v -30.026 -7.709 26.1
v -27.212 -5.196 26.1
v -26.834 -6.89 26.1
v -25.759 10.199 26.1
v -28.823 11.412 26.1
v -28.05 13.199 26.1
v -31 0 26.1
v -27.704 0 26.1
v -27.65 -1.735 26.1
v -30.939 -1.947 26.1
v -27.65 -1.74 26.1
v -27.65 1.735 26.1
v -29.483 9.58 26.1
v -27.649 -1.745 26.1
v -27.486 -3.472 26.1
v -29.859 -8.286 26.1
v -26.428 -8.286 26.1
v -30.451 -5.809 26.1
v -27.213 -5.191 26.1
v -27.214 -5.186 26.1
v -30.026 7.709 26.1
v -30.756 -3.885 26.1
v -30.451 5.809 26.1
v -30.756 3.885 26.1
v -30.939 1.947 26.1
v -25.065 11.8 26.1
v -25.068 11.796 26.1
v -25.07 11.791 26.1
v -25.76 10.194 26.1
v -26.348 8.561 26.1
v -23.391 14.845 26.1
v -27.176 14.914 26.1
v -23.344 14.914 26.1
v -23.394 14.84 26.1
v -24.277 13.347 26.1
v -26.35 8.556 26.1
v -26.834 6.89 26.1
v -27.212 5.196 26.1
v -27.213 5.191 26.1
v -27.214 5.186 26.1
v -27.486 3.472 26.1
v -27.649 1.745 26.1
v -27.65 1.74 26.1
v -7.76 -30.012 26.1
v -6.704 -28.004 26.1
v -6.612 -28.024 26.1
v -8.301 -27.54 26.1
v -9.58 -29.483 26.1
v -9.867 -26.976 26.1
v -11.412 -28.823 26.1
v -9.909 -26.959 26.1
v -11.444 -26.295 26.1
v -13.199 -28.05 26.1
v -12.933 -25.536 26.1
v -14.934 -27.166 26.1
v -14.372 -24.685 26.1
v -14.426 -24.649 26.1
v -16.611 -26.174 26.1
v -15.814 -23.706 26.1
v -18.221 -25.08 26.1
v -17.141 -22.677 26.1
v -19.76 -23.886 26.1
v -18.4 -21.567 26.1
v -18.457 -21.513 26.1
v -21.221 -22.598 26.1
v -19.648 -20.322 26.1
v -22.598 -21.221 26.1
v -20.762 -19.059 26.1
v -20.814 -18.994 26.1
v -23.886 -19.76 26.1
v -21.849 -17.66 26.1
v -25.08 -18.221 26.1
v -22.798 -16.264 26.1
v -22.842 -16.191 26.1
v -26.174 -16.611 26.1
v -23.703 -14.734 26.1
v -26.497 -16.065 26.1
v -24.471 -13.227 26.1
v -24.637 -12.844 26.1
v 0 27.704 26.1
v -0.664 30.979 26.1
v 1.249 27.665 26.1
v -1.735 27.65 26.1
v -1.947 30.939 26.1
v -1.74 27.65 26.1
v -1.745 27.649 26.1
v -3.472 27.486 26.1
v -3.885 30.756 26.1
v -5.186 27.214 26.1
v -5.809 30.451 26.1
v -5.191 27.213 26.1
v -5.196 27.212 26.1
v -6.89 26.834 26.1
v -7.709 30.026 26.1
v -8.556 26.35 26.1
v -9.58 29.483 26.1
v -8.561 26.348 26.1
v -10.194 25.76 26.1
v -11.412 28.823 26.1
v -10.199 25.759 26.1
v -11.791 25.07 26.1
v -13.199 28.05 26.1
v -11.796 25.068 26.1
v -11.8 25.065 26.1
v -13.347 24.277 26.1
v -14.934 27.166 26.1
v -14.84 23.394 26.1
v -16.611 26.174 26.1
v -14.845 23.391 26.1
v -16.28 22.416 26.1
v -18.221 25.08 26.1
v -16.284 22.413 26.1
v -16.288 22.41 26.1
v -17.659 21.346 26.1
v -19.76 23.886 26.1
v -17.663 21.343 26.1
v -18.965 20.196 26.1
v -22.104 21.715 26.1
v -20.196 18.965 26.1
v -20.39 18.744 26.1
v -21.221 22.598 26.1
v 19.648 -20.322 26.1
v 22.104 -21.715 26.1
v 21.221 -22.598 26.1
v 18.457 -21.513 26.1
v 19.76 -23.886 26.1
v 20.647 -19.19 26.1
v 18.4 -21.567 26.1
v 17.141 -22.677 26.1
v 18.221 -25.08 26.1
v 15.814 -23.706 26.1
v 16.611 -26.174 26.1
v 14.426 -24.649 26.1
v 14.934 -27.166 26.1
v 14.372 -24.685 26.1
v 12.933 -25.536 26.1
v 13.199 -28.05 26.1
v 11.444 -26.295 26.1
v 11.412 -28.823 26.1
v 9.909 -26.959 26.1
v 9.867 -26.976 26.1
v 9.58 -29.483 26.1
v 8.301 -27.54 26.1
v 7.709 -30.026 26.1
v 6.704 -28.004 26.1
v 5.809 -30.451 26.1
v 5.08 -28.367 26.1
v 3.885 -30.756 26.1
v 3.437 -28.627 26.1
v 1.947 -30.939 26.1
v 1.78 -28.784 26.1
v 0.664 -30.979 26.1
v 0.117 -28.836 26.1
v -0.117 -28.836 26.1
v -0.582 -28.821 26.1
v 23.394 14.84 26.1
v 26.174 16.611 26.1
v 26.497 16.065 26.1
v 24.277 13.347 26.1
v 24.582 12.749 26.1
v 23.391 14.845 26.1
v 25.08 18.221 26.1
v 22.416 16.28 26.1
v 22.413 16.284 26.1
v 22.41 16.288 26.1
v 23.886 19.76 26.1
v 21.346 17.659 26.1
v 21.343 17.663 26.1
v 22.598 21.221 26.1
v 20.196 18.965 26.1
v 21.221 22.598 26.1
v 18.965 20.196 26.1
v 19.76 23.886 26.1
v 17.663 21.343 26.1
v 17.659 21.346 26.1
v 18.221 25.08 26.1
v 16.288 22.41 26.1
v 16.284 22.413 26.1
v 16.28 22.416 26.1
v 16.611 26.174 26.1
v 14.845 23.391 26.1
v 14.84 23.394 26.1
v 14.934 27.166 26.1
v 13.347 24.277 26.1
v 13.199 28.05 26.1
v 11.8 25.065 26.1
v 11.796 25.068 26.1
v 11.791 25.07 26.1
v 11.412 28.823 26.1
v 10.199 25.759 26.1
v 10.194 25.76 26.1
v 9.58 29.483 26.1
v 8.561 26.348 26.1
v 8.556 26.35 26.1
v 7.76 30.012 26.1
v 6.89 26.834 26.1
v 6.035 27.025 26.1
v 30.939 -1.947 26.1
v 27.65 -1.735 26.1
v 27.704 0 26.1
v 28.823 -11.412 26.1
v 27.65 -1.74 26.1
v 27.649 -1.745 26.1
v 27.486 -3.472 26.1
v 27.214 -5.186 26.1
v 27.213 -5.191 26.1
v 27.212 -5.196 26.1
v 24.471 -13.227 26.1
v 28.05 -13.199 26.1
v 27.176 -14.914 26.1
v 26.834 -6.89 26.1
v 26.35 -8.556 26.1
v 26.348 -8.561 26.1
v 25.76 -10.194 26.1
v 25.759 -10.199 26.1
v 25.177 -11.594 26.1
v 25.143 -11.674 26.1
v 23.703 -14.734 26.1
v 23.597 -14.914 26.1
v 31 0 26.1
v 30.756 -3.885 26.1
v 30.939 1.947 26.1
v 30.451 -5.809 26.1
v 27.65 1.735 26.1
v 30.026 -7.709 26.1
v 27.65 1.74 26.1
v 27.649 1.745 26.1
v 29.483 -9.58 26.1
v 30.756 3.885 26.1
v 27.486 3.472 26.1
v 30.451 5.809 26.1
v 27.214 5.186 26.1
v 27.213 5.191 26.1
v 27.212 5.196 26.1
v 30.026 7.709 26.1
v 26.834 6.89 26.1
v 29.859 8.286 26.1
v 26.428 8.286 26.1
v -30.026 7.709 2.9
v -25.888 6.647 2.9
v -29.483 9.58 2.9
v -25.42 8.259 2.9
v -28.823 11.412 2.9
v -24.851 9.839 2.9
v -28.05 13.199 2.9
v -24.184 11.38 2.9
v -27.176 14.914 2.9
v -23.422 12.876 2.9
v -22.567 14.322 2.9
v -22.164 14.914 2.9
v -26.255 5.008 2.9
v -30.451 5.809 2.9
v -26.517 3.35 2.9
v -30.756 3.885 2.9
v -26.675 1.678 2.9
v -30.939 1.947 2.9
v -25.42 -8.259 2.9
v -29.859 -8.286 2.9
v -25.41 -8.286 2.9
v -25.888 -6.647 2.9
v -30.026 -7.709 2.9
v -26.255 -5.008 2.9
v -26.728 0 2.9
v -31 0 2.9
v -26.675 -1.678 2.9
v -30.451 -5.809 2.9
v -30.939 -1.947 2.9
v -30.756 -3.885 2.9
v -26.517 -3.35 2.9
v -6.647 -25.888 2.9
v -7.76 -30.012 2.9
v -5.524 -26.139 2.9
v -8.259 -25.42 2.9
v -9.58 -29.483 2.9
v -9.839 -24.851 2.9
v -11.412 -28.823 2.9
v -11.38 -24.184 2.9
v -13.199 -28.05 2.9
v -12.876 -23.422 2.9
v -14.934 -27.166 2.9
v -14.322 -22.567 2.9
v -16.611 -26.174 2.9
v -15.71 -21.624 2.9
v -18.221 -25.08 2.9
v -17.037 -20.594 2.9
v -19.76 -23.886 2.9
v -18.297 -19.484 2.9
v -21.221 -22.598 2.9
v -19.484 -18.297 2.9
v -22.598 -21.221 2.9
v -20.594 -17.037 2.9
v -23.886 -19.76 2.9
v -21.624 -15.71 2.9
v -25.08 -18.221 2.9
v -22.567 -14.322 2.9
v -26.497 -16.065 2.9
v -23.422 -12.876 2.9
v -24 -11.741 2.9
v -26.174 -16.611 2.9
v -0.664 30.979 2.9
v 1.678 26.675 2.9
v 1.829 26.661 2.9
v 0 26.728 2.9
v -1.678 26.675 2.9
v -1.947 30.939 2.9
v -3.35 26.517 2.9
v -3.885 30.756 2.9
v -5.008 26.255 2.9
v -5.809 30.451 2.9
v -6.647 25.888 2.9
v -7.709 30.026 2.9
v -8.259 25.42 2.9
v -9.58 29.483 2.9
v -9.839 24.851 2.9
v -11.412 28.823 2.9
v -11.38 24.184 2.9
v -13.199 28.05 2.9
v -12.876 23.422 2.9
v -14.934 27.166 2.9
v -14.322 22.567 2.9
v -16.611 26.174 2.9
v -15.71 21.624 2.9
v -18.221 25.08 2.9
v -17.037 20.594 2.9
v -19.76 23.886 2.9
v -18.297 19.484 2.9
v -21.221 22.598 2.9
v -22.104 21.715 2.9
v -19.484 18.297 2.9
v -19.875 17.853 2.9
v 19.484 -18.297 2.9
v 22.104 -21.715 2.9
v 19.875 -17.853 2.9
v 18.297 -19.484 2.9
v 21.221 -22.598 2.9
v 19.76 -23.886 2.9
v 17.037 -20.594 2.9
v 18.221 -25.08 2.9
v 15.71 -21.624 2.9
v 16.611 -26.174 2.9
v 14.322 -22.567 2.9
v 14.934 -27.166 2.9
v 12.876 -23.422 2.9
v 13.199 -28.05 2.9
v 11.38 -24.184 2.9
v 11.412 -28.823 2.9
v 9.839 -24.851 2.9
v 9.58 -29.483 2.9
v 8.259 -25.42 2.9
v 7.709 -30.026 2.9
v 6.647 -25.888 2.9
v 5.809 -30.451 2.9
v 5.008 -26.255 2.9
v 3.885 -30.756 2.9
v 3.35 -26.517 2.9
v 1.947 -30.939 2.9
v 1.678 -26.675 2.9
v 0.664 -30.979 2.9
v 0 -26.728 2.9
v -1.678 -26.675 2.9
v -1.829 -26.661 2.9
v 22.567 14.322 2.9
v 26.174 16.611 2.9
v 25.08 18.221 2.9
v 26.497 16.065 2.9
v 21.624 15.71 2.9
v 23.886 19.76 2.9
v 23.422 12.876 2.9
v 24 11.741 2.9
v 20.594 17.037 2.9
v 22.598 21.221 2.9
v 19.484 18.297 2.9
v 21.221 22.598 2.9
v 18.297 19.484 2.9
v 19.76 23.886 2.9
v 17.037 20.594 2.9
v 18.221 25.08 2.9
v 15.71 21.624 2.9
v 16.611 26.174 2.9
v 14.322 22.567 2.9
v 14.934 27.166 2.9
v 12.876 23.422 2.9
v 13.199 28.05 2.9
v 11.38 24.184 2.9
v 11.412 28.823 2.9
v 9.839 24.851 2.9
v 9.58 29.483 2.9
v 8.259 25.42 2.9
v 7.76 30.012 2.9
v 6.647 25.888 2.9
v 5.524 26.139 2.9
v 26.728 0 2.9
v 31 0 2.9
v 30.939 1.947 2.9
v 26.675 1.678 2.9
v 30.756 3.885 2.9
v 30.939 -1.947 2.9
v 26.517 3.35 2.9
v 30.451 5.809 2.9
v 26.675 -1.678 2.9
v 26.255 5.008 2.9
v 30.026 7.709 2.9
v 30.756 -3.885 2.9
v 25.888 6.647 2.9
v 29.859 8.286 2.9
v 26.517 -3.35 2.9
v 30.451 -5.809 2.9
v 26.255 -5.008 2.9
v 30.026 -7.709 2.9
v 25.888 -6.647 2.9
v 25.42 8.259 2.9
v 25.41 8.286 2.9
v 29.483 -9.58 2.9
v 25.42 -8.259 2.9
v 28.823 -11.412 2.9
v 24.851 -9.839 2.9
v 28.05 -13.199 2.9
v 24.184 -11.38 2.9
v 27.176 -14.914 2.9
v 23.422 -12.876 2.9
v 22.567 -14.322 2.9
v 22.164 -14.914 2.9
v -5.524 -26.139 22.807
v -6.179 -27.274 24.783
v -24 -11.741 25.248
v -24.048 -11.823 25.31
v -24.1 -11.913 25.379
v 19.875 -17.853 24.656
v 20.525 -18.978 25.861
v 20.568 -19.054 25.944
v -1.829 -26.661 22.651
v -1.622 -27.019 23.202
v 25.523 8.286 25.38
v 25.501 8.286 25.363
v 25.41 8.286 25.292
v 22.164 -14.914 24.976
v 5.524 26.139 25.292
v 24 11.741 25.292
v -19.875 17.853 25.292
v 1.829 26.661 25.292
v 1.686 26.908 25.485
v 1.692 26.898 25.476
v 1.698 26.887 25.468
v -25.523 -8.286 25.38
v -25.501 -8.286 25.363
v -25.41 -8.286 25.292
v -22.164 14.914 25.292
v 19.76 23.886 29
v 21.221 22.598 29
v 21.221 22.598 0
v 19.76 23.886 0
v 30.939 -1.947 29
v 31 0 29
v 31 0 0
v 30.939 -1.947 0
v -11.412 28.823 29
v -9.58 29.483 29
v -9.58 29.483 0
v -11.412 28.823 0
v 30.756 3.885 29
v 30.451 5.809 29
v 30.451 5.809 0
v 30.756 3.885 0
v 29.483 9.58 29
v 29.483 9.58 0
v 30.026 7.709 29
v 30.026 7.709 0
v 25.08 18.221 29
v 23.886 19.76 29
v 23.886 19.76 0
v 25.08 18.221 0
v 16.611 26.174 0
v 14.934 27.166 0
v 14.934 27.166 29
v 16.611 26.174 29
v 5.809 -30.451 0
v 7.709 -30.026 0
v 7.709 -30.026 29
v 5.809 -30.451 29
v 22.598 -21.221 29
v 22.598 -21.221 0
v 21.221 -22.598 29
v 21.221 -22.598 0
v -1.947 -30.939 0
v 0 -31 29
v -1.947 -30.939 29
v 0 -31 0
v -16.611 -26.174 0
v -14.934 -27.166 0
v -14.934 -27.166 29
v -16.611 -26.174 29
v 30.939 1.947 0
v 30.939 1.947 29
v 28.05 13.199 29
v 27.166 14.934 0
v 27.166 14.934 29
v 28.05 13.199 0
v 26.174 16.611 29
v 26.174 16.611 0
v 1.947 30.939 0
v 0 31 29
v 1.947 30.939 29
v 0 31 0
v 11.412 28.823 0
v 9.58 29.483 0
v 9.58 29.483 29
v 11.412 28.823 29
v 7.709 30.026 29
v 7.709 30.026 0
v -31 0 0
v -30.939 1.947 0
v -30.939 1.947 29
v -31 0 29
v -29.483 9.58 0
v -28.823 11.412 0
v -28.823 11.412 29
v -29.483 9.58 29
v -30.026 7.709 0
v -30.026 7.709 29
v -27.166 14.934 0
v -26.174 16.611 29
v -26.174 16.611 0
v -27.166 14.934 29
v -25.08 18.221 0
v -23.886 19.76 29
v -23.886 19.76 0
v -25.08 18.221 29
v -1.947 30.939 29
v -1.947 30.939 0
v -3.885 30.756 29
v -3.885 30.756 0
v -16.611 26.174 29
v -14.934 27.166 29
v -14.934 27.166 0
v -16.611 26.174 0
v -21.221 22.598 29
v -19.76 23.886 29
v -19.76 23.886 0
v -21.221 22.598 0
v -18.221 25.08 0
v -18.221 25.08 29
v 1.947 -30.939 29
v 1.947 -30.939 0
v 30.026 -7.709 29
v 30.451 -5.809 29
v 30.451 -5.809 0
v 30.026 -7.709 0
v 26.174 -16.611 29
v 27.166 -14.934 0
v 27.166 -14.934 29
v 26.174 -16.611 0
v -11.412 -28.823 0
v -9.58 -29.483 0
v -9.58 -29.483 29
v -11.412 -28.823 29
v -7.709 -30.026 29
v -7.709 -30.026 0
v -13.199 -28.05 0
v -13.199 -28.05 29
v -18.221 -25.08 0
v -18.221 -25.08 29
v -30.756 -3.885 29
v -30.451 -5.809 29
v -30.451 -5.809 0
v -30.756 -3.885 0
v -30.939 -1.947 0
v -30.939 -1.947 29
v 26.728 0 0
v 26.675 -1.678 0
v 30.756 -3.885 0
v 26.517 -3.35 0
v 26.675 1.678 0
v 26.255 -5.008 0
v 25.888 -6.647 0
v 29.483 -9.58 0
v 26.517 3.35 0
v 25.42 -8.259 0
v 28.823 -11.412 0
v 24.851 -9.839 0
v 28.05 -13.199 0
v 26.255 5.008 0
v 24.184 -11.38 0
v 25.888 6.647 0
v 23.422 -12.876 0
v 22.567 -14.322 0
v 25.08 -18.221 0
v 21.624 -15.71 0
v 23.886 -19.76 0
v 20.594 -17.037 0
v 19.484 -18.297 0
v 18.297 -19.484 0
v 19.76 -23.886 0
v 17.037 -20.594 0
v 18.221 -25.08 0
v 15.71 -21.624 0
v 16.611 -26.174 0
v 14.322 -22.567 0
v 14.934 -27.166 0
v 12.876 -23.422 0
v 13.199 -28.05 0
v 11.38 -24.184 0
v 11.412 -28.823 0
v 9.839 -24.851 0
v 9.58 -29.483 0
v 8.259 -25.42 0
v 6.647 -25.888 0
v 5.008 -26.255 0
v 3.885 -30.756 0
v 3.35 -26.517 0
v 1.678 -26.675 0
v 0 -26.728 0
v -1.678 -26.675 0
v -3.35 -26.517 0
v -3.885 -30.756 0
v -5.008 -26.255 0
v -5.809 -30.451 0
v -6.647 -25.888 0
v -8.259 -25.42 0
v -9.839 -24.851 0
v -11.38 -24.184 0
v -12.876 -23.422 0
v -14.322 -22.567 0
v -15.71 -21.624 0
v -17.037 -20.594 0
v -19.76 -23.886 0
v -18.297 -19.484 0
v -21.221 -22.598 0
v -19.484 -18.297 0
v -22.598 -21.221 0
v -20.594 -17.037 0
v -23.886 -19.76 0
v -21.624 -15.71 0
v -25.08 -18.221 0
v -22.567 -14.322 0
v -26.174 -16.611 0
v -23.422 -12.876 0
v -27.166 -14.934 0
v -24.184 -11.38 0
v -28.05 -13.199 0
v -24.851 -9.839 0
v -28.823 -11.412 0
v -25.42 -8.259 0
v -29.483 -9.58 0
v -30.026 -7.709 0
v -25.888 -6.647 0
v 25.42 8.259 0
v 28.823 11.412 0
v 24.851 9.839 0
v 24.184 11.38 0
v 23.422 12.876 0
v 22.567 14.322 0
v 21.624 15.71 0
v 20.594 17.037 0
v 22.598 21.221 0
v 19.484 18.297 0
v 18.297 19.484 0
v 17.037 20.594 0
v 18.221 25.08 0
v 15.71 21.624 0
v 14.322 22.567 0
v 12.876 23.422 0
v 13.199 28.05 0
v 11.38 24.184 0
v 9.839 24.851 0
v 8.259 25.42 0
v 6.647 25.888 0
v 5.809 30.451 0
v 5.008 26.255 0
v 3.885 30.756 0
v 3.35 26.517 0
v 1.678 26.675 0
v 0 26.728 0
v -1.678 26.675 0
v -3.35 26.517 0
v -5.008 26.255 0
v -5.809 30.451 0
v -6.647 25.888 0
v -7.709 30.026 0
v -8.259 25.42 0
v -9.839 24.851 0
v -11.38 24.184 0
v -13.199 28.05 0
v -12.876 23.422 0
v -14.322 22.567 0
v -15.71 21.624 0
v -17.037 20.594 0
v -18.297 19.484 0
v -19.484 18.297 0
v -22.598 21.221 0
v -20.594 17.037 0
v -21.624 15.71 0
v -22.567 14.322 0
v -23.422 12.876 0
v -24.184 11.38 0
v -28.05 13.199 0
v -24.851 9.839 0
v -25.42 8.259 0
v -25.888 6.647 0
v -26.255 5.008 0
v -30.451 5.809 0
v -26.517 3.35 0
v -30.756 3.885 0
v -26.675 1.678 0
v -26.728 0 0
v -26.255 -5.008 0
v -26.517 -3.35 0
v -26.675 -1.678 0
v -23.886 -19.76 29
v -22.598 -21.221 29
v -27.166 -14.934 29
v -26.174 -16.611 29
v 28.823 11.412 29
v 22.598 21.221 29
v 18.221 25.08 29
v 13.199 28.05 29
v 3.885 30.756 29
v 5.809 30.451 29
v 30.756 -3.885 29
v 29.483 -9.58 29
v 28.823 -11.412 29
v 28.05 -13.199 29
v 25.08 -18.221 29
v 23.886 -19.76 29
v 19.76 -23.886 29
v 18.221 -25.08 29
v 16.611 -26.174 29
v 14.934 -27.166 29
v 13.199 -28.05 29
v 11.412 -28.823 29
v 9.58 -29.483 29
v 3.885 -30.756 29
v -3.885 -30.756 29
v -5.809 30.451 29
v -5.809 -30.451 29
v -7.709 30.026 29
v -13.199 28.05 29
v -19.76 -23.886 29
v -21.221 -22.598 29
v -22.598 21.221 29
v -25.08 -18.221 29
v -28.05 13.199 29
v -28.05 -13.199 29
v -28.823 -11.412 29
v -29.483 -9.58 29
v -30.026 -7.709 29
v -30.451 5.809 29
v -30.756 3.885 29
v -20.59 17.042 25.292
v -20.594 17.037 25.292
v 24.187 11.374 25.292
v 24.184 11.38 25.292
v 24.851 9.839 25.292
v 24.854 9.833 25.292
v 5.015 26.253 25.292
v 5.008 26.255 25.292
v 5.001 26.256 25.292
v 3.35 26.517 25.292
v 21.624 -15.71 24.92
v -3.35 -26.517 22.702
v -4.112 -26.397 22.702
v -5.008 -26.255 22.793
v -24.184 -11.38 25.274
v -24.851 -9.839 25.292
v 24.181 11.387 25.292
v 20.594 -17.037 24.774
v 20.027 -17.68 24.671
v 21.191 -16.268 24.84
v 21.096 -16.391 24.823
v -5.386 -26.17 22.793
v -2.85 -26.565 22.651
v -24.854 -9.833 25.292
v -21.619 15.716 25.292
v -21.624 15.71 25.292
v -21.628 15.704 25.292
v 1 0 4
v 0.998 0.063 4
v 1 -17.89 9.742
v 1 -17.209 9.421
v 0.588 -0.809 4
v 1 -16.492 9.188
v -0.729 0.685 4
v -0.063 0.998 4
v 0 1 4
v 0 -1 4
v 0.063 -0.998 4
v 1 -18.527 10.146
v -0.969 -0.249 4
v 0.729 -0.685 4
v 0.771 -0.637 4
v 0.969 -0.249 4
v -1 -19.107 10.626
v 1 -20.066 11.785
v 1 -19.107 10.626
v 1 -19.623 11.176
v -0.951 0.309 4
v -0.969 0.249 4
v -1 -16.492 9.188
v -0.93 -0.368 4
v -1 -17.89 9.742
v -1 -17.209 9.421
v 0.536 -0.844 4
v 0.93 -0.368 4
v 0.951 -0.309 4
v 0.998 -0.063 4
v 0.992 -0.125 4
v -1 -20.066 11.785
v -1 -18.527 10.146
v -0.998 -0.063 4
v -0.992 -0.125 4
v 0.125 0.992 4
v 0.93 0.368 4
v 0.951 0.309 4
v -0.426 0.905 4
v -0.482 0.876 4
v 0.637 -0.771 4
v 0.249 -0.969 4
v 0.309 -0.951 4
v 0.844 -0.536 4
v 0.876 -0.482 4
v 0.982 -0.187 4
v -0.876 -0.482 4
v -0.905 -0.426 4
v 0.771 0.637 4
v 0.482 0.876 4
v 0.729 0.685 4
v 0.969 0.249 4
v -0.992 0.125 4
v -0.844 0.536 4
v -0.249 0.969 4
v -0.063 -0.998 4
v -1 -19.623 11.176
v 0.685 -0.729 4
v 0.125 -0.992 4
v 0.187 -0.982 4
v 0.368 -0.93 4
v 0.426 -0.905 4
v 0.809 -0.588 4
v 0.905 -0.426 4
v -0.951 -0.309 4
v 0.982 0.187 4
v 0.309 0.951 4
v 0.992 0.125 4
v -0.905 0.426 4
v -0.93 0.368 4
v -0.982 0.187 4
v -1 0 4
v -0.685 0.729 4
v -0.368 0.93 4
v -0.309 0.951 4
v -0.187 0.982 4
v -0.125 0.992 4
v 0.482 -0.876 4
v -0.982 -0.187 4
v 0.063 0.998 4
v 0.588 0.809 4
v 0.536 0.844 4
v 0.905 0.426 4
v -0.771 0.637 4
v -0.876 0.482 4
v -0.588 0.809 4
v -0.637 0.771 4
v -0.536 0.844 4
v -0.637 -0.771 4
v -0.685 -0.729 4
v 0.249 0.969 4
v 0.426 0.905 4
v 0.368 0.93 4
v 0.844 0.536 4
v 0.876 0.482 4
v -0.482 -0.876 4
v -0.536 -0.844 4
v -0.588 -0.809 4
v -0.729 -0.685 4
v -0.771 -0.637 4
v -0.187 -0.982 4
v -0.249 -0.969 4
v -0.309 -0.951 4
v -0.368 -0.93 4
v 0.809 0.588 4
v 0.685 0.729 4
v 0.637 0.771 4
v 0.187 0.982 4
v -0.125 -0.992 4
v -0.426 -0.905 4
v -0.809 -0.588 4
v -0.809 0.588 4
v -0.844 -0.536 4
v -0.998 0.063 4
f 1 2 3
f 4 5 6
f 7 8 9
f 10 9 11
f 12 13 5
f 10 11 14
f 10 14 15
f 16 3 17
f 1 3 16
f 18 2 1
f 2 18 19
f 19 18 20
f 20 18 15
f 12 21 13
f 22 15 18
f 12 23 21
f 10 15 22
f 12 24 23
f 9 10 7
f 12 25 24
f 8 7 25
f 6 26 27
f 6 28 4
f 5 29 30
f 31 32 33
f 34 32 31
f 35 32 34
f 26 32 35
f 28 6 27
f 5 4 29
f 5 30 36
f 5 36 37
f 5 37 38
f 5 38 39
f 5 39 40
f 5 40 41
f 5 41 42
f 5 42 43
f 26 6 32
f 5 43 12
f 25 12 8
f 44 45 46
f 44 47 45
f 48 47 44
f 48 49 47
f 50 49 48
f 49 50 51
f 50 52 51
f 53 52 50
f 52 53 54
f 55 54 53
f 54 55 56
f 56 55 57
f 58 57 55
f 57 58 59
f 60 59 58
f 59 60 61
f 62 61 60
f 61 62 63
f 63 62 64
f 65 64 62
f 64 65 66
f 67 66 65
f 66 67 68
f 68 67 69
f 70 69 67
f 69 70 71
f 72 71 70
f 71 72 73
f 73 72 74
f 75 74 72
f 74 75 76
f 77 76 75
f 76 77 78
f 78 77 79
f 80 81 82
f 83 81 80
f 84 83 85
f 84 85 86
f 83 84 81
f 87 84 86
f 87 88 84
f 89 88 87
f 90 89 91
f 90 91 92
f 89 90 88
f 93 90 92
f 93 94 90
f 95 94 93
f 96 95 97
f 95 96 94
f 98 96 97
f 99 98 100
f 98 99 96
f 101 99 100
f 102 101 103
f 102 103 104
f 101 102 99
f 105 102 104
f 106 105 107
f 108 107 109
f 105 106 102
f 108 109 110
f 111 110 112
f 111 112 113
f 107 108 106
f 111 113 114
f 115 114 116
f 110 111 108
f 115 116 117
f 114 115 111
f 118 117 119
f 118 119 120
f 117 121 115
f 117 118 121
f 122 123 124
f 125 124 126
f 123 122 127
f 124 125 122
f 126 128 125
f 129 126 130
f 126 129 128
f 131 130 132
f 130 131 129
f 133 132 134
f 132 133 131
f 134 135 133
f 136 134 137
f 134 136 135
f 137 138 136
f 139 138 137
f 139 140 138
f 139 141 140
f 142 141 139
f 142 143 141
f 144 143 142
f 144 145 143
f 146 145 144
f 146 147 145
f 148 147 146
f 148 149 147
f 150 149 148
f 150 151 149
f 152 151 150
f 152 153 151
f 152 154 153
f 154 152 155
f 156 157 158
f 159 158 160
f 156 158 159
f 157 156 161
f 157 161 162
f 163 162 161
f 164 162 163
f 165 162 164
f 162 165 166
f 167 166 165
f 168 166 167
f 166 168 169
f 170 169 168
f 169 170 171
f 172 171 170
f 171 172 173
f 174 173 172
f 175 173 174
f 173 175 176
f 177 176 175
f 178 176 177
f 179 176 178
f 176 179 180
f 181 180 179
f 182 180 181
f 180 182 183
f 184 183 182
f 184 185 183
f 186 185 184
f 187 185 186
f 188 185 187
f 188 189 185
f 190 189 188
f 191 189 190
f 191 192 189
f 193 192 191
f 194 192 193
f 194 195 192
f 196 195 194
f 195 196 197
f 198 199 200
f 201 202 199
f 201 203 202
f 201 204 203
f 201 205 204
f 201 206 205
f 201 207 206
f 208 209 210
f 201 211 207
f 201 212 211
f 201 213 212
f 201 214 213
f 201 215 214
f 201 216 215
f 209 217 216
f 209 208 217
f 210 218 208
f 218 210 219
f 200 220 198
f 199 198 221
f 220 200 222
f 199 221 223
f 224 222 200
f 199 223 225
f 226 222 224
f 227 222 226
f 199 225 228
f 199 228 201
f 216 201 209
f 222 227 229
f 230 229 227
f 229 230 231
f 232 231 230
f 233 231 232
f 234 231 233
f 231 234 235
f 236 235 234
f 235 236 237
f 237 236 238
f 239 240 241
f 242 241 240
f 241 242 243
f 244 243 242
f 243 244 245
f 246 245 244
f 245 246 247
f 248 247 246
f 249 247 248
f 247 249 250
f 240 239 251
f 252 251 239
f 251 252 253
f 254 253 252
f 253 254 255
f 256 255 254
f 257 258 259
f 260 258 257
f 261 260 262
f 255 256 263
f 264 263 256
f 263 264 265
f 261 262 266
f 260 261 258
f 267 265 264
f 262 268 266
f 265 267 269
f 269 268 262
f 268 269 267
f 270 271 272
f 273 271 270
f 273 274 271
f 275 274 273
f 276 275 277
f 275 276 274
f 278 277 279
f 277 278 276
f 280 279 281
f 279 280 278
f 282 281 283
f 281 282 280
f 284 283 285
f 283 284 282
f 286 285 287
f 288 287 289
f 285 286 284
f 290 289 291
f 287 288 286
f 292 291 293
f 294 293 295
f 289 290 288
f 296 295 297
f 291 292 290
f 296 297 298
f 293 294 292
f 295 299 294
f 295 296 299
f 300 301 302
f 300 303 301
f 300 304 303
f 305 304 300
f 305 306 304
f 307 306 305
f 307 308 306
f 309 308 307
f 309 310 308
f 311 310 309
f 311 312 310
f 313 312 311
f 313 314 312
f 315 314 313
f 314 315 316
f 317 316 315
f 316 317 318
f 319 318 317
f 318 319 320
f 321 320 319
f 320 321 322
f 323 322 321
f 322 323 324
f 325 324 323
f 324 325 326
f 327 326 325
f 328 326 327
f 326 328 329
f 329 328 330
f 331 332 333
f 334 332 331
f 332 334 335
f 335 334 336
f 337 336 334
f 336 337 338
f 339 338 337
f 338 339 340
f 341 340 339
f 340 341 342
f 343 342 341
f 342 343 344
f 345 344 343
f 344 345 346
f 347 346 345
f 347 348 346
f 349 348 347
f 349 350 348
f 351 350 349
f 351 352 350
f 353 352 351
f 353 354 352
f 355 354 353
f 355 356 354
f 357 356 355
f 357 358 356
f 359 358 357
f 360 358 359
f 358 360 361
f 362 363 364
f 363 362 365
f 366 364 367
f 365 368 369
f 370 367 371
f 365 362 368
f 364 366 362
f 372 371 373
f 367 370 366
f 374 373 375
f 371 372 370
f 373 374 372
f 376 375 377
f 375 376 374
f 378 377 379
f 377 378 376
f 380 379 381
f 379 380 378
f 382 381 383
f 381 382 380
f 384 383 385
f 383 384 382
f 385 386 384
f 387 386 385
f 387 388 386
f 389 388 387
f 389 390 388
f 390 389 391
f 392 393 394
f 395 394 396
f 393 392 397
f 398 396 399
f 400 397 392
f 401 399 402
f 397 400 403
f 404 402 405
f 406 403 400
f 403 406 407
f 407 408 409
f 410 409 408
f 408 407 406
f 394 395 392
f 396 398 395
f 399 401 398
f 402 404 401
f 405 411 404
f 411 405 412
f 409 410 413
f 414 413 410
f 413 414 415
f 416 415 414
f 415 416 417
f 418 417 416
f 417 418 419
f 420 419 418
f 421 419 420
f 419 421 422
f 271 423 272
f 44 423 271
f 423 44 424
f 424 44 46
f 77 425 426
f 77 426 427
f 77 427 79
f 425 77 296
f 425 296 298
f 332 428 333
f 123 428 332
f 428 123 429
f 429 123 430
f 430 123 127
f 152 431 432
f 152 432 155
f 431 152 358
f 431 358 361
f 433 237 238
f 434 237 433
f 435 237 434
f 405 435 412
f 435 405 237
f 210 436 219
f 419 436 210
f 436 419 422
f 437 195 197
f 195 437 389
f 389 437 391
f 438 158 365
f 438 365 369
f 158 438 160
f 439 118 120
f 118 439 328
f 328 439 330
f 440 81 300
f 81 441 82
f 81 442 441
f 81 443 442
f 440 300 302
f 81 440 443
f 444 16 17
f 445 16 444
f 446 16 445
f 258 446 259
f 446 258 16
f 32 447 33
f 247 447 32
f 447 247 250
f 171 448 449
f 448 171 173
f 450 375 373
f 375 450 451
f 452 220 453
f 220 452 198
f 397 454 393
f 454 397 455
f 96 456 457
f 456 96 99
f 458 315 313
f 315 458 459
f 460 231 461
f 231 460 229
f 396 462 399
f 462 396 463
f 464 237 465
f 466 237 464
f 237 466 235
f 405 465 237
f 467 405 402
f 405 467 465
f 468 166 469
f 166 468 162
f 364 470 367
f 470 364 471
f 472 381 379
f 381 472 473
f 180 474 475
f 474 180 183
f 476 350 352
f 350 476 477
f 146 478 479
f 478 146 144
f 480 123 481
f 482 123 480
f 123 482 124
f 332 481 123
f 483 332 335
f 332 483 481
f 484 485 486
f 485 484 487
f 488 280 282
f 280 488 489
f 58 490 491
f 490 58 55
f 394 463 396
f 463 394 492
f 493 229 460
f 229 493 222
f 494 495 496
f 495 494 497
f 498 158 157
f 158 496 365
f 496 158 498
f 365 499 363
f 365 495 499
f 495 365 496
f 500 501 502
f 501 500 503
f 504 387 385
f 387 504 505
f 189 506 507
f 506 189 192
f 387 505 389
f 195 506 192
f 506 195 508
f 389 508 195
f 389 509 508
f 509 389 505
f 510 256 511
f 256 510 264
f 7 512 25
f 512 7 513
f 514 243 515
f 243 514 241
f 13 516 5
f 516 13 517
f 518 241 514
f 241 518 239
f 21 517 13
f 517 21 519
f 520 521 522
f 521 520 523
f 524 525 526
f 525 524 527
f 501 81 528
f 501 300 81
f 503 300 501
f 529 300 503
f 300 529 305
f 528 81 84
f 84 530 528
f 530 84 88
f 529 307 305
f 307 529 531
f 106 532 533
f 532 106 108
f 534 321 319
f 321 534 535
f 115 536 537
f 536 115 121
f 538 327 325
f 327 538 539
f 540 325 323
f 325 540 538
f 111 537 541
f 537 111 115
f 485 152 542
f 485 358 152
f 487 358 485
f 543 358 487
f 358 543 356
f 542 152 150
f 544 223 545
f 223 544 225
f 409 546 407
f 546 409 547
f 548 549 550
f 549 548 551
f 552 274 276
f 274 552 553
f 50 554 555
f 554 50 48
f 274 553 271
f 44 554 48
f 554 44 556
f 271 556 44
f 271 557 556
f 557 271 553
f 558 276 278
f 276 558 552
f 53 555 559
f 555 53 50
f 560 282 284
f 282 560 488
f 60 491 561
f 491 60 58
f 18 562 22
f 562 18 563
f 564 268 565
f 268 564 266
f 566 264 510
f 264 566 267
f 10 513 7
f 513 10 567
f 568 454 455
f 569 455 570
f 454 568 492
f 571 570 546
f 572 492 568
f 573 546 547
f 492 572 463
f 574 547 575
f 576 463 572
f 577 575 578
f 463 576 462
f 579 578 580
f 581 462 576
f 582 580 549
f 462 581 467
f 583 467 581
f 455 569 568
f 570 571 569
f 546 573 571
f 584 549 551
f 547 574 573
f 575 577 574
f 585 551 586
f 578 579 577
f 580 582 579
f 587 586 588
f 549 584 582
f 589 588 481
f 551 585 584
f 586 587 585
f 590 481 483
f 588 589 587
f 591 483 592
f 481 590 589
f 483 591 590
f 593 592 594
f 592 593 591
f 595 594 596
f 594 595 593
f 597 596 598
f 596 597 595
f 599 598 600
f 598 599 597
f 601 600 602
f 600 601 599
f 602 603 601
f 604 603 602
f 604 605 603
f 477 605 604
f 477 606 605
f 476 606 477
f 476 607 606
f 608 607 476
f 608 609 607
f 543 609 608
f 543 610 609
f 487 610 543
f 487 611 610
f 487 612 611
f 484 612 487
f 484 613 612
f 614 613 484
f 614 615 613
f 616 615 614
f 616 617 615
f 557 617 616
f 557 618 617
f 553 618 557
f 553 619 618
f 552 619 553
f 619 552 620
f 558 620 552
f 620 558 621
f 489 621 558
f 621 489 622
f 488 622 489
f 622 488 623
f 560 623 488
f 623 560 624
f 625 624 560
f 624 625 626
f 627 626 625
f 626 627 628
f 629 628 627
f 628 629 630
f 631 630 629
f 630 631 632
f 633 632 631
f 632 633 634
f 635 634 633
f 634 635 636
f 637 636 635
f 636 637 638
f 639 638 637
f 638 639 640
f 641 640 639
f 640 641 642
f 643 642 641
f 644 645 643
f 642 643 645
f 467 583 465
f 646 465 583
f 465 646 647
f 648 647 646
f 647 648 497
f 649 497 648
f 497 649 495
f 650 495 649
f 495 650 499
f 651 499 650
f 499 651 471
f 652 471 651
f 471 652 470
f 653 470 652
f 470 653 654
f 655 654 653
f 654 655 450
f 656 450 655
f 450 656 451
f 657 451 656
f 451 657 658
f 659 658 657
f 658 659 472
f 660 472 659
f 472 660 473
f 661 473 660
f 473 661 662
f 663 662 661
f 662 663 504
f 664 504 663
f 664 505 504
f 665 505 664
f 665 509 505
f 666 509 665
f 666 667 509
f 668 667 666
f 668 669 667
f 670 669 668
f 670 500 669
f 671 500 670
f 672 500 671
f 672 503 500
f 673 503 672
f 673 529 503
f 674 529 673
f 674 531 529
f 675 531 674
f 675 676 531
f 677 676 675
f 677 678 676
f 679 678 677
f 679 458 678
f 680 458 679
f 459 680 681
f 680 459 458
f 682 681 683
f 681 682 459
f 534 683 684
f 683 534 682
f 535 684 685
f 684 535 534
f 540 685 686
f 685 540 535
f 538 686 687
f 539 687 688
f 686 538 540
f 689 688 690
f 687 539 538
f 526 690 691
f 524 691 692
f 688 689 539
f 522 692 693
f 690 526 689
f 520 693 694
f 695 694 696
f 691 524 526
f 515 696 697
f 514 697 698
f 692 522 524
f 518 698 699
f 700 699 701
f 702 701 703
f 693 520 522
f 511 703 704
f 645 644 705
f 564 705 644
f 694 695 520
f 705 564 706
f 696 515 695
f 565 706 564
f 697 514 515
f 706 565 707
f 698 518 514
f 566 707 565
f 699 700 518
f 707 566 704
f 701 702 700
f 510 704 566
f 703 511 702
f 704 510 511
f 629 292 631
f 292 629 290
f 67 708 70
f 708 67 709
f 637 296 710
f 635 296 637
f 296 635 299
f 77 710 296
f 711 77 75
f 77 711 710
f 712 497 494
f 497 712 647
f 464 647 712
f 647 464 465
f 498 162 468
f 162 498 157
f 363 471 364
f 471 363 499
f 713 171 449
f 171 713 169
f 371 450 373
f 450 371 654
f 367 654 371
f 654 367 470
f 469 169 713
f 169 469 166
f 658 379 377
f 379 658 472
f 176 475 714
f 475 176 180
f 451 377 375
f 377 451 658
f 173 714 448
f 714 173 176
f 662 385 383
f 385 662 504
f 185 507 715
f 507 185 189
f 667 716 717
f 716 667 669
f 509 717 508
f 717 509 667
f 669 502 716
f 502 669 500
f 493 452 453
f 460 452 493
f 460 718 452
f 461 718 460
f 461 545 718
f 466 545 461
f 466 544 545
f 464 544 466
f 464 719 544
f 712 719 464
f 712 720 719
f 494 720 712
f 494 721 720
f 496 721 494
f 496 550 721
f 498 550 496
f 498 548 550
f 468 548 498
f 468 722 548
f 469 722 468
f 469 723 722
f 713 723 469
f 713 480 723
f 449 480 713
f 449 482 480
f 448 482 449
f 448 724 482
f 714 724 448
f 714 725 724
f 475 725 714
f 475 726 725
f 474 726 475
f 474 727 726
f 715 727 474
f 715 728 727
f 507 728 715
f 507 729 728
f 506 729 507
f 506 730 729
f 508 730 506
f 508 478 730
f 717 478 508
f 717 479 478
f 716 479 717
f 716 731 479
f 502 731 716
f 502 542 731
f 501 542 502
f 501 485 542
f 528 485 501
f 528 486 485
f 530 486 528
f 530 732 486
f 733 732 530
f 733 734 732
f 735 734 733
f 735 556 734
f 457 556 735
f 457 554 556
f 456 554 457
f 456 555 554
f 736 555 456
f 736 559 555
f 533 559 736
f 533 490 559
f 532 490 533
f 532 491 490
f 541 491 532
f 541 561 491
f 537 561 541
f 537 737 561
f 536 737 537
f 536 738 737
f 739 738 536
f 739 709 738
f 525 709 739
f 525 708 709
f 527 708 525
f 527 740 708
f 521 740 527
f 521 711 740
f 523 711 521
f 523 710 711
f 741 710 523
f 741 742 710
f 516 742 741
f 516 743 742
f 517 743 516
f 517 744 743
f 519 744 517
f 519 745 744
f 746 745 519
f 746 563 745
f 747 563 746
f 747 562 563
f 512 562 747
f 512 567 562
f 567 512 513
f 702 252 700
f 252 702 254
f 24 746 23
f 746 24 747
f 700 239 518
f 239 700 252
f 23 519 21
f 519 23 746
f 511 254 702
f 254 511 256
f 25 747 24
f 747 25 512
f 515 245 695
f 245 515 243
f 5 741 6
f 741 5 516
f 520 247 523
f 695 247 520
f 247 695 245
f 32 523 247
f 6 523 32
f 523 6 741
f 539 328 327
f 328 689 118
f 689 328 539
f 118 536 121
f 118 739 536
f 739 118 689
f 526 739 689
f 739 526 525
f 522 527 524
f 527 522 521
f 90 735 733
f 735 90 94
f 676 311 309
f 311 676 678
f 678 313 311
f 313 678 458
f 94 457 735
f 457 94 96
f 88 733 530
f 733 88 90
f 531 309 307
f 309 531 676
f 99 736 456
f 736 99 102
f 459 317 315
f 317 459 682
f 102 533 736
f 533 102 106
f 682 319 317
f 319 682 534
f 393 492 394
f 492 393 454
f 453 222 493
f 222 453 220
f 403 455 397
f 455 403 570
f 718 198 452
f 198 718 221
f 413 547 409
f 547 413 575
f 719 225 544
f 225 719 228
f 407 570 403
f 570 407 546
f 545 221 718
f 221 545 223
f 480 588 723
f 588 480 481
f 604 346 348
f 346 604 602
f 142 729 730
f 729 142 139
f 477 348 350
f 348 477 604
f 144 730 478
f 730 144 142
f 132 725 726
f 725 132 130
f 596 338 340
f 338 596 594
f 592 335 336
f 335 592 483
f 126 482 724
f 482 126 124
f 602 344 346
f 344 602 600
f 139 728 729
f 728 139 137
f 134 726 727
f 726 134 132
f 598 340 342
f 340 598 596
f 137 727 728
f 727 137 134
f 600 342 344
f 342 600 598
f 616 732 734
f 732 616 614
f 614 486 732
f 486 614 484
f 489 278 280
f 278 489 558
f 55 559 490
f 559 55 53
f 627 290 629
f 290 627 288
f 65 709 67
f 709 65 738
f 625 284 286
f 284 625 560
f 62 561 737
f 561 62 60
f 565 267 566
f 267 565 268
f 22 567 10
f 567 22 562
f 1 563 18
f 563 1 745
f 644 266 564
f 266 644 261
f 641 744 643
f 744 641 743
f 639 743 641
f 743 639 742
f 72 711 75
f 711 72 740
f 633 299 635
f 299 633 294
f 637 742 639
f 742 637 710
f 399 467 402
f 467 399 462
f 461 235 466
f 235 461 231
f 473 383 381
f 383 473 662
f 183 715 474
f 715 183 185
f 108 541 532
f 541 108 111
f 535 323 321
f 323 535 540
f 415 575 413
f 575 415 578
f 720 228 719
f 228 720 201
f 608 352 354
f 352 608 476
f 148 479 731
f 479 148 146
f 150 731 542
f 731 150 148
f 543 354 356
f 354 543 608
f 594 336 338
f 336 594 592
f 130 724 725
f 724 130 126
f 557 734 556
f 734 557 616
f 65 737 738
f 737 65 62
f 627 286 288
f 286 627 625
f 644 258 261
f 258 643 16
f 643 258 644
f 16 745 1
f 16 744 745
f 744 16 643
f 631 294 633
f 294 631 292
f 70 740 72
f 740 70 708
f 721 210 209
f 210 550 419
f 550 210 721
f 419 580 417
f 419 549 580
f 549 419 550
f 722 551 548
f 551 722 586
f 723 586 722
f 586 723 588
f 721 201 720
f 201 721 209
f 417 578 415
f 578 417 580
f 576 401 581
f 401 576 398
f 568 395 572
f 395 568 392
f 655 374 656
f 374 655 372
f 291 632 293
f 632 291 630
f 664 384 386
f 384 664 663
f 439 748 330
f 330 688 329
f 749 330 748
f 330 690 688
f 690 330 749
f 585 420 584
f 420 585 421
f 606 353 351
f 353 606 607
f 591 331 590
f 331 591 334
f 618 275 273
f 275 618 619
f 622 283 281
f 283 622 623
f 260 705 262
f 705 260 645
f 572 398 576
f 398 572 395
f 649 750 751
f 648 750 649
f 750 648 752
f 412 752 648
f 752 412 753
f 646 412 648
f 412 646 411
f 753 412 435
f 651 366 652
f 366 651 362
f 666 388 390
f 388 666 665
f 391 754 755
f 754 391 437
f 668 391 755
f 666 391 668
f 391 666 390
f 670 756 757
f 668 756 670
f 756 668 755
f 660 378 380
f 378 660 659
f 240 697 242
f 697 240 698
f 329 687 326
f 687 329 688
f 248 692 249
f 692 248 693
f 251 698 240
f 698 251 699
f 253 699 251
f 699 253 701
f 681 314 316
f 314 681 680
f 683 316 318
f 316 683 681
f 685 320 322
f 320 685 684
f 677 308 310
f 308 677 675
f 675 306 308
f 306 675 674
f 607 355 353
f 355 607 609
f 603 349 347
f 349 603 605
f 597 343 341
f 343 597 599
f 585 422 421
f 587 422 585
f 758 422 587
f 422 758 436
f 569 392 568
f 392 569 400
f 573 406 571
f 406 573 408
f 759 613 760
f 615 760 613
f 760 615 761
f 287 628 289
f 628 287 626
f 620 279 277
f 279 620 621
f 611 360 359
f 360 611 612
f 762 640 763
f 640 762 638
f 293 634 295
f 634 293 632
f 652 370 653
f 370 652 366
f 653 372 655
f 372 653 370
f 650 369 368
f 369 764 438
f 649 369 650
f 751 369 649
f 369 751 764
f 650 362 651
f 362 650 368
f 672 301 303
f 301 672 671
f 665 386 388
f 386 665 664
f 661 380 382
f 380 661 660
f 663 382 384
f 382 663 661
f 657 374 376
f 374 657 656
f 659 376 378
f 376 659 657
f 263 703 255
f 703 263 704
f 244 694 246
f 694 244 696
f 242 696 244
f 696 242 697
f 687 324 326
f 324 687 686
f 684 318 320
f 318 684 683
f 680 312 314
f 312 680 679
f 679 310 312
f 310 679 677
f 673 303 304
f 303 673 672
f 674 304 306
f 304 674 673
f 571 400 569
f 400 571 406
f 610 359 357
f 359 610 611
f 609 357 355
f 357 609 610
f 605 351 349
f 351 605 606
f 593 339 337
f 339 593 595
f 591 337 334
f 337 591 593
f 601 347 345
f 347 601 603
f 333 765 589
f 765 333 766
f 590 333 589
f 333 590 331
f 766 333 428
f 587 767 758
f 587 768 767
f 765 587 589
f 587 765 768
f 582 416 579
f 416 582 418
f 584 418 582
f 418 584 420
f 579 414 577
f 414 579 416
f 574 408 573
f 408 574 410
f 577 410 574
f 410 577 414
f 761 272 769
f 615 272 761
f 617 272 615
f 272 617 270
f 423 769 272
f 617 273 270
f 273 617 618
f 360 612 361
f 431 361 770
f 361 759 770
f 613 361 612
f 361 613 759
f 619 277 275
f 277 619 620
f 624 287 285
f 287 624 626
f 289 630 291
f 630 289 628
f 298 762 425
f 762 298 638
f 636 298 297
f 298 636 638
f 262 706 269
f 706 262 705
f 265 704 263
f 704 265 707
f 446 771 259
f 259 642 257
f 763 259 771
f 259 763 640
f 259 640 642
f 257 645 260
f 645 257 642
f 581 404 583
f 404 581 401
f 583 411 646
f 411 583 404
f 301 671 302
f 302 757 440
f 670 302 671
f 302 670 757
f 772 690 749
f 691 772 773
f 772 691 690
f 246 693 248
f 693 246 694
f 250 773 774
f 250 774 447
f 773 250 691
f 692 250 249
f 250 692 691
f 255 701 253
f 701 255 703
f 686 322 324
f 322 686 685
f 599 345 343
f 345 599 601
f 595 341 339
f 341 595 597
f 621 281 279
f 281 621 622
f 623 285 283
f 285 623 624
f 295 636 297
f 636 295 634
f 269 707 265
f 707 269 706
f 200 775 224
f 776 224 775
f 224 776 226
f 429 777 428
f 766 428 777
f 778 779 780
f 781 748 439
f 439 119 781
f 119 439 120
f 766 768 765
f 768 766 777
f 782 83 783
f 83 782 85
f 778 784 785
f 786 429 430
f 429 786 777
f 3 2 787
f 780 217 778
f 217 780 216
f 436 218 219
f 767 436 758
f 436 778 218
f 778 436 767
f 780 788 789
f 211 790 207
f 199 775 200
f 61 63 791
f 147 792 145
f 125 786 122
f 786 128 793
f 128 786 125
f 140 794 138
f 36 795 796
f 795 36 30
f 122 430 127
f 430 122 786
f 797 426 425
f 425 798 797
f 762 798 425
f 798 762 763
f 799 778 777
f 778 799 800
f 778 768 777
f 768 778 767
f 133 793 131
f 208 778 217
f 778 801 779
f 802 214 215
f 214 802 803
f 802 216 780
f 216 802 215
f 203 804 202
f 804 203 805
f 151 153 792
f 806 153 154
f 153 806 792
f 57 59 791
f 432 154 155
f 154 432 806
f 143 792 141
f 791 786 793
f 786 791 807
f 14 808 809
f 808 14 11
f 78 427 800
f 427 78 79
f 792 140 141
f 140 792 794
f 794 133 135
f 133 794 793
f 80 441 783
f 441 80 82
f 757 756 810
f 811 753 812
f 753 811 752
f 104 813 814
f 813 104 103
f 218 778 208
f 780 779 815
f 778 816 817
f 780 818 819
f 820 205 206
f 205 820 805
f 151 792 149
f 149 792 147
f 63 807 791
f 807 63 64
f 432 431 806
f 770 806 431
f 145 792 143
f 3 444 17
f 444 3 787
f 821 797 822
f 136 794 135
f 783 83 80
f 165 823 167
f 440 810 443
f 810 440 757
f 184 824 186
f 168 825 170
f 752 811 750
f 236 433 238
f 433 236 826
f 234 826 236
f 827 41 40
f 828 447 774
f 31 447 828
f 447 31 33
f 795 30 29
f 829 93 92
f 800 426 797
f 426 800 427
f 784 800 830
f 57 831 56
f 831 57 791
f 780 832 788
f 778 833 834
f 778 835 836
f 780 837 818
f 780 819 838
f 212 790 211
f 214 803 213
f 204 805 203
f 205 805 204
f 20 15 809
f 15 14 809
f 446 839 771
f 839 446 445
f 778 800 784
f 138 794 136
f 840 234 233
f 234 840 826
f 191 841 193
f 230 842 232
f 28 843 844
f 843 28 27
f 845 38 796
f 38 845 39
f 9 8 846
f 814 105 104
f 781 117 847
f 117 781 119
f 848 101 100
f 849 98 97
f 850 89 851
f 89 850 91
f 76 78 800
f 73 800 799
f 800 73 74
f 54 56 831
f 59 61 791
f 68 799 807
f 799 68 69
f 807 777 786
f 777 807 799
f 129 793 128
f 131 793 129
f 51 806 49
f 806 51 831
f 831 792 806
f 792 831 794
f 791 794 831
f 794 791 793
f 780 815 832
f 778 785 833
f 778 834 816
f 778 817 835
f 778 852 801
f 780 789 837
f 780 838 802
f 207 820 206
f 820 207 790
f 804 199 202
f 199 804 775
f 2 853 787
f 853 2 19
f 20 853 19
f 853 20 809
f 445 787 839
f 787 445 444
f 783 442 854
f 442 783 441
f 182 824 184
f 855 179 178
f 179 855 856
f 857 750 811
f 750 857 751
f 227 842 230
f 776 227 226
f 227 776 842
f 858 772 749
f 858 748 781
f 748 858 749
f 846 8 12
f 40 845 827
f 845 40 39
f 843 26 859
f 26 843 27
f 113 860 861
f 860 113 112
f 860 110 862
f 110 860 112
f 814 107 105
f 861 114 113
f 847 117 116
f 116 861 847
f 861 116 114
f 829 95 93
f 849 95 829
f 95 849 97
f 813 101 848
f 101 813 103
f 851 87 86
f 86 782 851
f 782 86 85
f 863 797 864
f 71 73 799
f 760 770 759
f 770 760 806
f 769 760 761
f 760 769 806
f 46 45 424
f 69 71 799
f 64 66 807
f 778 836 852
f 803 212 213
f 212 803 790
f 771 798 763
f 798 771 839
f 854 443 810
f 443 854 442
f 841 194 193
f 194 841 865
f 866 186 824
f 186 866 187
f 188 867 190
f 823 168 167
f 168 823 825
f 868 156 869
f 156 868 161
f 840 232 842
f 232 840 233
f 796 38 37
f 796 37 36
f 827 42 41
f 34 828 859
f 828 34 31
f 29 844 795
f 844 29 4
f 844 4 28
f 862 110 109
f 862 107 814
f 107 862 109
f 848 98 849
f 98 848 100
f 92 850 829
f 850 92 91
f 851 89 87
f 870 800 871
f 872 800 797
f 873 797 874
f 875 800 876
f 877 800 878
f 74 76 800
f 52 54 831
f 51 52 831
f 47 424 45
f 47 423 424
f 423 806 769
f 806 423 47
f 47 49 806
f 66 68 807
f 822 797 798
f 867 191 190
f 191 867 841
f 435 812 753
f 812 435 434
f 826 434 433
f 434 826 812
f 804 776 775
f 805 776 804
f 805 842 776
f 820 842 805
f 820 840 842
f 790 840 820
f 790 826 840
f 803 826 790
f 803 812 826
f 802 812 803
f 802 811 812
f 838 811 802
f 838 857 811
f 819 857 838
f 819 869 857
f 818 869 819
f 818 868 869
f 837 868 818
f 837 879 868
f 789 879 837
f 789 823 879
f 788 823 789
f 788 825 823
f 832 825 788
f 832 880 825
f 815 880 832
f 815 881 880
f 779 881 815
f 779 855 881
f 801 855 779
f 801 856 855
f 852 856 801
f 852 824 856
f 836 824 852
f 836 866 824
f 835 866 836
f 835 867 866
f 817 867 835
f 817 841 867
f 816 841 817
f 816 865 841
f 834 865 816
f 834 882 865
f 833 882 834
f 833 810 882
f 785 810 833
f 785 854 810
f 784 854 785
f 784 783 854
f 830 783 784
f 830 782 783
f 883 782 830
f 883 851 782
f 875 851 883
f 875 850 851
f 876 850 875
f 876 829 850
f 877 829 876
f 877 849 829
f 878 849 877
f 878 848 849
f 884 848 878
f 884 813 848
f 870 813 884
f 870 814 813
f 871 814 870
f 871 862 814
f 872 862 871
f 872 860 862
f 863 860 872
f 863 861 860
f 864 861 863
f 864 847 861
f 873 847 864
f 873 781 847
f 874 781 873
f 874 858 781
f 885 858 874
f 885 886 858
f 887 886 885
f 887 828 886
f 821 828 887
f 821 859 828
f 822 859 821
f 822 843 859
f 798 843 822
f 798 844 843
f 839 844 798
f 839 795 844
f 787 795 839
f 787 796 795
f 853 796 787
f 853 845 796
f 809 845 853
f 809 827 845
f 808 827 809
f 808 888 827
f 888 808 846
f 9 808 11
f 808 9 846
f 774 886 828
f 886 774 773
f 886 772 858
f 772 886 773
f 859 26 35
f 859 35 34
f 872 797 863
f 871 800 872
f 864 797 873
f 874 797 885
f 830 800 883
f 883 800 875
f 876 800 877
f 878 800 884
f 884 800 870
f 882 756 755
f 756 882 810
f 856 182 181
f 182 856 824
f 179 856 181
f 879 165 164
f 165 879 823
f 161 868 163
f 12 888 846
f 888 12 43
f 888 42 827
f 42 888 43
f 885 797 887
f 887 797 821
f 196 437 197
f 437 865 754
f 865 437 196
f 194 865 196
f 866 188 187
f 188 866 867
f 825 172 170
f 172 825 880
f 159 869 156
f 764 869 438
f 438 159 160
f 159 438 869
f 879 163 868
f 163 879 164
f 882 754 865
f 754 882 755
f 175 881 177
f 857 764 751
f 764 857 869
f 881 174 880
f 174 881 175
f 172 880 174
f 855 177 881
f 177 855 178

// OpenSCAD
speaker_diameter = 58; // messing with this until we get a good fit, not the actual size

union(){
	difference(){
		// top bounding "box"
		cylinder(r=(speaker_diameter/2)+2,h=speaker_diameter/2,$fn=100);
		
		// side holes
		for(i=[1:6]){
			rotate([0,0,(i * 360)/6]){
				translate([-(speaker_diameter/2)-5,-speaker_diameter/7,speaker_diameter/20]){
					cube([speaker_diameter/2, speaker_diameter/2.5, speaker_diameter/2.5]);
				}
			}
		}
		
		// bottom hole
		translate([0,0,-1]){
			cylinder(r=speaker_diameter/2.17,h=speaker_diameter/2,$fn=100);
		}
	}

	// dispirtion cone
	translate([0,0,4]){
		hull(){
			cylinder(r2=(speaker_diameter/2)+1, r1=1, h=(speaker_diameter/2)-5,$fn=100);
			translate([-1,-15,11]){
				rotate([0,90,0]){
					cylinder(r=6,h=2,$fn=50);
				}
			}
		}
	}
}
